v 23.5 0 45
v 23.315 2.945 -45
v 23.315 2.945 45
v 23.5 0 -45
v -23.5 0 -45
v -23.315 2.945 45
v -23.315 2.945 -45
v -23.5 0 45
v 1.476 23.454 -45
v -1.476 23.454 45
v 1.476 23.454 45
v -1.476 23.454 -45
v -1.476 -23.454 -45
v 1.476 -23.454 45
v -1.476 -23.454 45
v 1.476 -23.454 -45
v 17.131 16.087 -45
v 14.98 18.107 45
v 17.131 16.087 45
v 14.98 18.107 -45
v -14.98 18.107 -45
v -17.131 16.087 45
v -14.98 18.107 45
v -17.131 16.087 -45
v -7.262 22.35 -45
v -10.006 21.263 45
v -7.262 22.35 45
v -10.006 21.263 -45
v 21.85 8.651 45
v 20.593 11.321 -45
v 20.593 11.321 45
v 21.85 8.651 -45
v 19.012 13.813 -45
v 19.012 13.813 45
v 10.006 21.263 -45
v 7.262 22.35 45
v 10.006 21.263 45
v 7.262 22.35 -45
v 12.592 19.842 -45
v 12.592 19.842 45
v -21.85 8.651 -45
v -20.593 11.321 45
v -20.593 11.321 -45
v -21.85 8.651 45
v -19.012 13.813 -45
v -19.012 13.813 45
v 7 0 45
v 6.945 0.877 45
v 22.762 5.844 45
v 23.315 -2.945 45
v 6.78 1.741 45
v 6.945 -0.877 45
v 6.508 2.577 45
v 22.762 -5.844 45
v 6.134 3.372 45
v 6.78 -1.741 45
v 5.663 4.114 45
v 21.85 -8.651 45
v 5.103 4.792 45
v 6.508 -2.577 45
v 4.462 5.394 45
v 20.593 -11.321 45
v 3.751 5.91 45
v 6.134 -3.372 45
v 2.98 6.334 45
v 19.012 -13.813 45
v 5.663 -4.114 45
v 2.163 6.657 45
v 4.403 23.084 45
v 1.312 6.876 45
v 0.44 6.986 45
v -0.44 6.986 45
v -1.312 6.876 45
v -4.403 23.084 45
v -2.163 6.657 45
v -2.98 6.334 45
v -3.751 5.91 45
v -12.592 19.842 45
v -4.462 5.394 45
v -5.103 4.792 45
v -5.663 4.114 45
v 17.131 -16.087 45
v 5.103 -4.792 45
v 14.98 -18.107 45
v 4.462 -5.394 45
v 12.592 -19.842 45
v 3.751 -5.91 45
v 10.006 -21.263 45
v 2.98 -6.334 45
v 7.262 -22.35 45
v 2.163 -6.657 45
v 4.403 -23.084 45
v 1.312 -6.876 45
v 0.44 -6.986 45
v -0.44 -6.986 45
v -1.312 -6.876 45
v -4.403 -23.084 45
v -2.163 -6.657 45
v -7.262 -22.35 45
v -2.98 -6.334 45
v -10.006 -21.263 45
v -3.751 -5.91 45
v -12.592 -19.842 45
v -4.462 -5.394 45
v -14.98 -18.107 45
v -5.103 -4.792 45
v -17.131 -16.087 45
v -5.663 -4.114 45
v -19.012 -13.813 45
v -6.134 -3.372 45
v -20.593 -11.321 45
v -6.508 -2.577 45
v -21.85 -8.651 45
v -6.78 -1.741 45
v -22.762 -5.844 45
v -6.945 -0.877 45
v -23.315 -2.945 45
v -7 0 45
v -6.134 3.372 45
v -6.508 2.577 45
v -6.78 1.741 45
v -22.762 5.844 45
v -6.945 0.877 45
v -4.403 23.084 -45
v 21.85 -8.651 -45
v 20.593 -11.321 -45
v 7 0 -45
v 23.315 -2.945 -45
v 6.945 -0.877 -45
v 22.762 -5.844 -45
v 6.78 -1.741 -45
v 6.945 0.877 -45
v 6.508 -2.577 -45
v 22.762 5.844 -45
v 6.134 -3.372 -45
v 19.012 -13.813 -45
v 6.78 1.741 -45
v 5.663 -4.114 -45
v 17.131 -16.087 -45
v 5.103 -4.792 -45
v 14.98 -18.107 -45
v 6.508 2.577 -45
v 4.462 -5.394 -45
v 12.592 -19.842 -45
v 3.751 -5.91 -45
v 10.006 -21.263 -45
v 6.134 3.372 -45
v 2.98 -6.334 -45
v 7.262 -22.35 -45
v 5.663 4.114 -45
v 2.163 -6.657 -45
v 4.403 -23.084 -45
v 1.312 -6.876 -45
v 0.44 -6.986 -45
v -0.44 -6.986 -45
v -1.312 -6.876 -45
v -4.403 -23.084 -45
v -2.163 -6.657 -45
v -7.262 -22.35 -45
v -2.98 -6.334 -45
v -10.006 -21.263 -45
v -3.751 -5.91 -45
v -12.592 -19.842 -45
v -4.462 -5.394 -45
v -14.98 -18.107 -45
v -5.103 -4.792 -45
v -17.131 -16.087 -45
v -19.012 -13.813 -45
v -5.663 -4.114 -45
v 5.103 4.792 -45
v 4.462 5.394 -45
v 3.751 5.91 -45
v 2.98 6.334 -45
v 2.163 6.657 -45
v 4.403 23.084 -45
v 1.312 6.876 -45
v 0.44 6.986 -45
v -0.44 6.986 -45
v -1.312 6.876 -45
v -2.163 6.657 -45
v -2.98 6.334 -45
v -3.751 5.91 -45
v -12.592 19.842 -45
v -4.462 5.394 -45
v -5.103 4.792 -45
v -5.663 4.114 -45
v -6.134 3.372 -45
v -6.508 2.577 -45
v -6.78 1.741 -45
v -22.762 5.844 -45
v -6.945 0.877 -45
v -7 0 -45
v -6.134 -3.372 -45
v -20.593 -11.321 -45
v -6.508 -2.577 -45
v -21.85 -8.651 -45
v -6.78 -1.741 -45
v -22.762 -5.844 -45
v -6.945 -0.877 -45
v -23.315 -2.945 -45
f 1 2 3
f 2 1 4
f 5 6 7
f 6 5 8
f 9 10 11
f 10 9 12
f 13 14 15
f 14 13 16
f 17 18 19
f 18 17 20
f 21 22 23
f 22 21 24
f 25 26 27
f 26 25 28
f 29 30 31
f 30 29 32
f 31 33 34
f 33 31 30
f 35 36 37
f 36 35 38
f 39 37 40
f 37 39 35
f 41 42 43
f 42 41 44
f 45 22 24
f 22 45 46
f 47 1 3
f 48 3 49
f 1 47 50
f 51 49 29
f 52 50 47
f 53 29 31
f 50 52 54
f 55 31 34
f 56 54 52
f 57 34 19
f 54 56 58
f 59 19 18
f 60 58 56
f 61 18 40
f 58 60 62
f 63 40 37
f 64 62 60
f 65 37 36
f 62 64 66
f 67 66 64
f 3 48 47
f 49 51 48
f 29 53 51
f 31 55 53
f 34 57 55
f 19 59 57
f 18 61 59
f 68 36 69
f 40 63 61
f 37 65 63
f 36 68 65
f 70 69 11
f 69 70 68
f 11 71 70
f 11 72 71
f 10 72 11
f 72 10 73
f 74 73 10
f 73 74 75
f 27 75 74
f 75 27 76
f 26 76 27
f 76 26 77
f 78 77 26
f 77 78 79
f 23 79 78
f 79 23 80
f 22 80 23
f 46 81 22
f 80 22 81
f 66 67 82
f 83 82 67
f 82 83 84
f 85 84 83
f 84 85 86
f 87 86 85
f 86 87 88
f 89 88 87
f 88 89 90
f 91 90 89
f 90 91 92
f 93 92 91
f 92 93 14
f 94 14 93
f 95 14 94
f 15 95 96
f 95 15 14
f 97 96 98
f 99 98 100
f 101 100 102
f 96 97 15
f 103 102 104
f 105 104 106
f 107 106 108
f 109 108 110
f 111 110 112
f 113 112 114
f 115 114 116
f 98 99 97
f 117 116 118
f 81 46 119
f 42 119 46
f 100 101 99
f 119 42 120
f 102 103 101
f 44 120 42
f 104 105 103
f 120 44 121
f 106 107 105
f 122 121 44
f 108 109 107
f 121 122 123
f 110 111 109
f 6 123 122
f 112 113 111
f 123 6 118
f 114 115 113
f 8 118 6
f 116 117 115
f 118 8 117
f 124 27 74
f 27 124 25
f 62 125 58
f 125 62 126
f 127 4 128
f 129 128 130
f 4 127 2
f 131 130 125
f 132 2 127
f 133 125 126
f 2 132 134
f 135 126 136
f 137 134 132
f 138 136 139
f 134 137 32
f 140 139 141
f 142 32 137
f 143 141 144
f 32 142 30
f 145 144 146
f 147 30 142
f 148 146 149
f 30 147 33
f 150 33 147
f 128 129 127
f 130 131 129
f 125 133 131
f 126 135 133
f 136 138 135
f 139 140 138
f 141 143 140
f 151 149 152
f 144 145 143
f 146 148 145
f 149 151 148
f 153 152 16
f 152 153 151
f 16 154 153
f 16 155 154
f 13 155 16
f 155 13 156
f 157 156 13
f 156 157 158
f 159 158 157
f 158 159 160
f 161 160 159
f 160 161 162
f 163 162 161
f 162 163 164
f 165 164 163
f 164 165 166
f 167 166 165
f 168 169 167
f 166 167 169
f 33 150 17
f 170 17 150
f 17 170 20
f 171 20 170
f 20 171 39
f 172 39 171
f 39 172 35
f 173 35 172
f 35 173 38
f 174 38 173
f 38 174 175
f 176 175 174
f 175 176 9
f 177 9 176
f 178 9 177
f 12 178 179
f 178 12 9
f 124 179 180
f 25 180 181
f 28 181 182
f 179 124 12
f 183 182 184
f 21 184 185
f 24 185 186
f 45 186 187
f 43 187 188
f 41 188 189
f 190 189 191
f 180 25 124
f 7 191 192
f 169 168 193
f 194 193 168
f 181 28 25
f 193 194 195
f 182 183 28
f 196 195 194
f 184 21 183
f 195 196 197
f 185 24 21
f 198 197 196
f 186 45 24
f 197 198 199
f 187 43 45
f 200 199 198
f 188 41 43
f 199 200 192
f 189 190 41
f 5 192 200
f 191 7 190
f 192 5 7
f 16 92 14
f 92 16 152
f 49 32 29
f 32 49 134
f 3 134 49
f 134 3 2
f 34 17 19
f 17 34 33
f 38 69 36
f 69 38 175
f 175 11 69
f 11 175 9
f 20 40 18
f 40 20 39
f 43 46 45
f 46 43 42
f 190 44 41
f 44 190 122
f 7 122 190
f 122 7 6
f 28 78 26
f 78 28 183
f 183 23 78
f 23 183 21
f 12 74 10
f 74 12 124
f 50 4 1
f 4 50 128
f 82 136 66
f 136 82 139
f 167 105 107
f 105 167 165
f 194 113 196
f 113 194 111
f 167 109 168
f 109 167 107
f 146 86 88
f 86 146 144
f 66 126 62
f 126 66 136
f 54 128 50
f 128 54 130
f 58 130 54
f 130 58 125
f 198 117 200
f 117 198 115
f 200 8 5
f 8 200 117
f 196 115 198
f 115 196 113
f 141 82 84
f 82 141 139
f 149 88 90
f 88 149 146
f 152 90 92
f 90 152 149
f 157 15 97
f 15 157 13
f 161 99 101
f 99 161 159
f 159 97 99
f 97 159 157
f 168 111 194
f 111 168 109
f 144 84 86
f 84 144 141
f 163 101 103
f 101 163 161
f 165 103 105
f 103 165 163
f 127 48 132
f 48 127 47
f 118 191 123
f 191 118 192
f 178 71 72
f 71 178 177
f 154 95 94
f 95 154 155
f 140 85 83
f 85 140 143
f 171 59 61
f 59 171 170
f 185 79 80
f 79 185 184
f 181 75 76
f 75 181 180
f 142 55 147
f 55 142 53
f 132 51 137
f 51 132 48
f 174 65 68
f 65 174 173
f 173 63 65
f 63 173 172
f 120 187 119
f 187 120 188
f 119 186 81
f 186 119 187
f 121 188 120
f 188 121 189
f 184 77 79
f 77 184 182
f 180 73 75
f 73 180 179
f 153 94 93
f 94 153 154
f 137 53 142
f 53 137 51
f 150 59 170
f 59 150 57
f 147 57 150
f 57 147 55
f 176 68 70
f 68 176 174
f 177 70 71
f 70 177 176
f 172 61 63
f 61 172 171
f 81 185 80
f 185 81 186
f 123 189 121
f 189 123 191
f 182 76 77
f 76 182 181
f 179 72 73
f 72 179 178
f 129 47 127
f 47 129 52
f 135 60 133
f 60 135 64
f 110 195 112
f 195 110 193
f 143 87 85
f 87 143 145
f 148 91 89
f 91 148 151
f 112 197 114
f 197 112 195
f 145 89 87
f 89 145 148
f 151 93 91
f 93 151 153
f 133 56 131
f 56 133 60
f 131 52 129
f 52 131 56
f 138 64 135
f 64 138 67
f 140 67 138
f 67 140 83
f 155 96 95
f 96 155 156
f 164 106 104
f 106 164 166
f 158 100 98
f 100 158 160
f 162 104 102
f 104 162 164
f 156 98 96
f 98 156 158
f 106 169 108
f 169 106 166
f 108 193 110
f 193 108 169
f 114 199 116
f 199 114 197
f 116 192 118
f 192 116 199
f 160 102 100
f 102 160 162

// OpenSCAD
$fn = 50;


difference() {
	union() {
		translate(v = [0, 0, -45.0000000000]) {
			cylinder(h = 90, r = 23.5000000000);
		}
	}
	union() {
		translate(v = [0, 0, -100.0000000000]) {
			cylinder(h = 200, r = 7);
		}
	}
}
